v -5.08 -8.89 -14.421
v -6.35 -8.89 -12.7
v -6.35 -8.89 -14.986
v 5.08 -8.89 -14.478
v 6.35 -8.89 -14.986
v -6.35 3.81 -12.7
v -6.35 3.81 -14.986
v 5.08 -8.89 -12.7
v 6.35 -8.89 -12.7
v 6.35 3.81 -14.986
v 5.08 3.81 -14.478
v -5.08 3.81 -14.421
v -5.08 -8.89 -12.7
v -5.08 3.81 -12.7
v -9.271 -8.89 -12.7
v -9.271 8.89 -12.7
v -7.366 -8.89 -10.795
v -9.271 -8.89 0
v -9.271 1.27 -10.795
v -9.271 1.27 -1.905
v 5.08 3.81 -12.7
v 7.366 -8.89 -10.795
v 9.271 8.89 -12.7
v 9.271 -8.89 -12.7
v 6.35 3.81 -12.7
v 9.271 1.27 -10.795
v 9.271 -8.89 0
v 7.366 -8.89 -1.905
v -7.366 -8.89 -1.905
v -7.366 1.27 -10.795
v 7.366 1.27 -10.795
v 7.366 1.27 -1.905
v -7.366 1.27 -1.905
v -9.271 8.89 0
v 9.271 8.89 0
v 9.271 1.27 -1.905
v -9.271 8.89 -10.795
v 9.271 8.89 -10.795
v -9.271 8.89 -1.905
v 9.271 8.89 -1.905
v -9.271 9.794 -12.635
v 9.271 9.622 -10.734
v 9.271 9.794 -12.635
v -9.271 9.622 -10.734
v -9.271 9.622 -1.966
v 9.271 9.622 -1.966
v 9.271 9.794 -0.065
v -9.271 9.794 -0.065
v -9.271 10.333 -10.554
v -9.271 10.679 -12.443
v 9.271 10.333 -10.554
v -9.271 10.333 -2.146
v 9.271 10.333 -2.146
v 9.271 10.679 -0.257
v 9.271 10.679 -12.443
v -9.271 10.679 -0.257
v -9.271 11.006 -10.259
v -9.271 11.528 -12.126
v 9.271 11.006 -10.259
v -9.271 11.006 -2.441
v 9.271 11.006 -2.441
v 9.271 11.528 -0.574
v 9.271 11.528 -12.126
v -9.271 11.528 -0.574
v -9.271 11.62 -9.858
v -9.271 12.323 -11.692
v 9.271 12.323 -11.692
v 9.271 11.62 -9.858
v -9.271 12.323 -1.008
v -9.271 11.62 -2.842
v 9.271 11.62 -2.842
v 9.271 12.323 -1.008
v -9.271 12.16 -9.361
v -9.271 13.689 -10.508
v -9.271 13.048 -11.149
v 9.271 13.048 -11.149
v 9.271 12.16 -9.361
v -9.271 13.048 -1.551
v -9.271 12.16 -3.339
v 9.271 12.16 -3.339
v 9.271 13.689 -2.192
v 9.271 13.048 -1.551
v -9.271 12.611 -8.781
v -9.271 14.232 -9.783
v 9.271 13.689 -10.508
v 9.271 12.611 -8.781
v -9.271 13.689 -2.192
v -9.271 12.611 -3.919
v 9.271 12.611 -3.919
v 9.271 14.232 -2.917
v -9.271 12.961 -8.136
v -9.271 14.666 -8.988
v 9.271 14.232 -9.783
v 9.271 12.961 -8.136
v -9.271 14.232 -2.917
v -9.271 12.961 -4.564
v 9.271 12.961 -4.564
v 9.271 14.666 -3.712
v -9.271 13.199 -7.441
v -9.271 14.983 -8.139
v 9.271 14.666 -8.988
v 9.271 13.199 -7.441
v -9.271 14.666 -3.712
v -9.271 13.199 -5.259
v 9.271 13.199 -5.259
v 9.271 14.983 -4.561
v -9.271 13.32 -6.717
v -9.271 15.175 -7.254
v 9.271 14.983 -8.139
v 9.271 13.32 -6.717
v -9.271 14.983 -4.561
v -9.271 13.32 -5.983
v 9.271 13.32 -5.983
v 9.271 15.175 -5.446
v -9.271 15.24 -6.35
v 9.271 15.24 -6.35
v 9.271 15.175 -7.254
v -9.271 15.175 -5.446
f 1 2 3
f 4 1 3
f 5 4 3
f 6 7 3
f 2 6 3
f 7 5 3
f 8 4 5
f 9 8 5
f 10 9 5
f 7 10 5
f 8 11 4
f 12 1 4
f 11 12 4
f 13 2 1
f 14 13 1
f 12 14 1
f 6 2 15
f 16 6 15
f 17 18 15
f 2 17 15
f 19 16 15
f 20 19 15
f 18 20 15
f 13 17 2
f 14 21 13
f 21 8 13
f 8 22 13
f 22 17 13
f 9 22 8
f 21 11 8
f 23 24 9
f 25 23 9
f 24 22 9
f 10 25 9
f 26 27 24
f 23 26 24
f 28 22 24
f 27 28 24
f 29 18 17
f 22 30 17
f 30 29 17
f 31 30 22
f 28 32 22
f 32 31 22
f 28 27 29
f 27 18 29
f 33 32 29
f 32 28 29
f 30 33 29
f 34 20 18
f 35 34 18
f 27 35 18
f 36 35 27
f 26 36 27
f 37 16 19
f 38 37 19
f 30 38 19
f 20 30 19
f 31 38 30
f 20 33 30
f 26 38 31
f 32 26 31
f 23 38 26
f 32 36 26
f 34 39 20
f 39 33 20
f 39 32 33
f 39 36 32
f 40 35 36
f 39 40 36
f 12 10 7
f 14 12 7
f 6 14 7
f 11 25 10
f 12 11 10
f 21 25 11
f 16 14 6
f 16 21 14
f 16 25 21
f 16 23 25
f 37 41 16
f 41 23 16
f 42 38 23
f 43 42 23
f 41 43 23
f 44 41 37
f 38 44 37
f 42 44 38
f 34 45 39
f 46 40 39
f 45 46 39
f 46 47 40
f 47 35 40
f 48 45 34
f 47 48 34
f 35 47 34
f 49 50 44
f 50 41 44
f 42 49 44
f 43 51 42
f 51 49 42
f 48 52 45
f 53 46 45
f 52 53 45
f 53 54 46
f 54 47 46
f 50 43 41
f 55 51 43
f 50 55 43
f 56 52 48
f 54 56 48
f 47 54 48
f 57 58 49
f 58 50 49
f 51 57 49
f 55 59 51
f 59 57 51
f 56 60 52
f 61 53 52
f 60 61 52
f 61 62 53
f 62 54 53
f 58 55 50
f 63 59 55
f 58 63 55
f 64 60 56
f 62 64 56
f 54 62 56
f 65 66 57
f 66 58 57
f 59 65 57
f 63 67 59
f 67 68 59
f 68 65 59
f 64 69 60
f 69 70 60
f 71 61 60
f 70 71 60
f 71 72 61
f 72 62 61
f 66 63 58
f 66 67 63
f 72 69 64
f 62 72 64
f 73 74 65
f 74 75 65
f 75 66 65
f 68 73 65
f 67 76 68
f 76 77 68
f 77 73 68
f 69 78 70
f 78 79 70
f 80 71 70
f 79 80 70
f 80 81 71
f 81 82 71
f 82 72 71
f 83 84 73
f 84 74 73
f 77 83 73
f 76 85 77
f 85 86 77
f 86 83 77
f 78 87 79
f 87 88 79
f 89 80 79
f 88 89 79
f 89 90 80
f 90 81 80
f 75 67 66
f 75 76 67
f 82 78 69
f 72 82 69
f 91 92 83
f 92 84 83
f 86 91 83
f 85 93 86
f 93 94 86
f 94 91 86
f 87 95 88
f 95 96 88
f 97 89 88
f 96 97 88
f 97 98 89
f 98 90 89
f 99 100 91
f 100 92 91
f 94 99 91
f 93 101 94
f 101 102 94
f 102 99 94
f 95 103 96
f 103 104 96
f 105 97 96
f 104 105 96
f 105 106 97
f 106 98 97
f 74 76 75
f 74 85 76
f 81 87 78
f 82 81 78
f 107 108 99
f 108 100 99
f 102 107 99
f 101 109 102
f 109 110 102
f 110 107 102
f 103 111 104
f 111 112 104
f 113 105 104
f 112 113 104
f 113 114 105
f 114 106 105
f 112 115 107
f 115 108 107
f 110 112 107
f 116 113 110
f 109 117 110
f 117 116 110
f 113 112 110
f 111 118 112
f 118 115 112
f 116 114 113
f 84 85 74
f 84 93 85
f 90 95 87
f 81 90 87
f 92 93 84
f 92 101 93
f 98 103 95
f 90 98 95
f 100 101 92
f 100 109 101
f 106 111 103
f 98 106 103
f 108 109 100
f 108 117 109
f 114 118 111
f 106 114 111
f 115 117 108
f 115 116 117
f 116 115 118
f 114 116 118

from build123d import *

# Parameters (mm, degrees)
SKETCH1_W            = 18.542
SKETCH1_H            = 17.78
BOSS_EXTRUDE4_DEPTH  = 1.905
SKETCH4_W            = 18.542
SKETCH4_H            = 17.78
BOSS_EXTRUDE5_DEPTH  = 1.905
BOSS_EXTRUDE6_DEPTH  = 18.542
SKETCH7_W            = 8.89
SKETCH7_H            = 10.16
BOSS_EXTRUDE7_DEPTH  = 1.905
SKETCH8_W            = 8.89
SKETCH8_H            = 10.16
BOSS_EXTRUDE8_DEPTH  = 1.905
SKETCH12_W           = 12.7
SKETCH12_H           = 12.7
BOSS_EXTRUDE11_DEPTH = 2.286
CUT_EXTRUDE2_DEPTH   = 22.721455683


with BuildPart() as part:
    # Sketch1 → Boss-Extrude4 (new body)
    with BuildSketch(Plane.XY):
        Rectangle(SKETCH1_W, SKETCH1_H)
    extrude(amount=-BOSS_EXTRUDE4_DEPTH)



with BuildPart() as body_2:
    # Sketch4 → Boss-Extrude5 (new body)
    with BuildSketch(Plane.XY.offset(-12.7)):
        Rectangle(SKETCH4_W, SKETCH4_H)
    extrude(amount=BOSS_EXTRUDE5_DEPTH)


with BuildPart() as part_1:
    add(part.part)

    add(body_2.part)  # Boss-Extrude6 merges body 2
    # Sketch6 → Boss-Extrude6 (add)
    with BuildSketch(Plane.ZY.offset(9.271)):
        with BuildLine():
            Line((-12.7, 8.89), (-10.795, 8.89))
            ThreePointArc((-10.795, 8.89), (-6.35, 13.335), (-1.905, 8.89))
            Line((-1.905, 8.89), (0, 8.89))
            ThreePointArc((0, 8.89), (-6.35, 15.24), (-12.7, 8.89))
        make_face()
    extrude(amount=-BOSS_EXTRUDE6_DEPTH)

    # Sketch7 → Boss-Extrude7 (add)
    with BuildSketch(Plane.ZY.offset(9.271)):
        with Locations((-6.35, -3.81)):
            Rectangle(SKETCH7_W, SKETCH7_H)
    extrude(amount=-BOSS_EXTRUDE7_DEPTH)

    # Sketch8 → Boss-Extrude8 (add)
    with BuildSketch(Plane(origin=(9.271, 0, 0), x_dir=(0, 0, -1), z_dir=(1, 0, 0))):
        with Locations((6.35, -3.81)):
            Rectangle(SKETCH8_W, SKETCH8_H)
    extrude(amount=-BOSS_EXTRUDE8_DEPTH)

    # Sketch12 → Boss-Extrude11 (add)
    with BuildSketch(Plane(origin=(0, 0, -12.7), x_dir=(-1, 0, 0), z_dir=(0, 0, -1))):
        with Locations((0, -2.54)):
            Rectangle(SKETCH12_W, SKETCH12_H)
    extrude(amount=BOSS_EXTRUDE11_DEPTH)

    # Sketch13 → Cut-Extrude2 (cut, through all)
    with BuildSketch(Plane(origin=(0, 3.81, 0), x_dir=(1, 0, 0), z_dir=(0, 1, 0))):
        Polygon((-5.08, 12.7), (5.08, 12.7), (5.08, 14.478), (-5.08, 14.420748278), align=None)
    extrude(amount=-CUT_EXTRUDE2_DEPTH, mode=Mode.SUBTRACT)


solid = part_1.part
